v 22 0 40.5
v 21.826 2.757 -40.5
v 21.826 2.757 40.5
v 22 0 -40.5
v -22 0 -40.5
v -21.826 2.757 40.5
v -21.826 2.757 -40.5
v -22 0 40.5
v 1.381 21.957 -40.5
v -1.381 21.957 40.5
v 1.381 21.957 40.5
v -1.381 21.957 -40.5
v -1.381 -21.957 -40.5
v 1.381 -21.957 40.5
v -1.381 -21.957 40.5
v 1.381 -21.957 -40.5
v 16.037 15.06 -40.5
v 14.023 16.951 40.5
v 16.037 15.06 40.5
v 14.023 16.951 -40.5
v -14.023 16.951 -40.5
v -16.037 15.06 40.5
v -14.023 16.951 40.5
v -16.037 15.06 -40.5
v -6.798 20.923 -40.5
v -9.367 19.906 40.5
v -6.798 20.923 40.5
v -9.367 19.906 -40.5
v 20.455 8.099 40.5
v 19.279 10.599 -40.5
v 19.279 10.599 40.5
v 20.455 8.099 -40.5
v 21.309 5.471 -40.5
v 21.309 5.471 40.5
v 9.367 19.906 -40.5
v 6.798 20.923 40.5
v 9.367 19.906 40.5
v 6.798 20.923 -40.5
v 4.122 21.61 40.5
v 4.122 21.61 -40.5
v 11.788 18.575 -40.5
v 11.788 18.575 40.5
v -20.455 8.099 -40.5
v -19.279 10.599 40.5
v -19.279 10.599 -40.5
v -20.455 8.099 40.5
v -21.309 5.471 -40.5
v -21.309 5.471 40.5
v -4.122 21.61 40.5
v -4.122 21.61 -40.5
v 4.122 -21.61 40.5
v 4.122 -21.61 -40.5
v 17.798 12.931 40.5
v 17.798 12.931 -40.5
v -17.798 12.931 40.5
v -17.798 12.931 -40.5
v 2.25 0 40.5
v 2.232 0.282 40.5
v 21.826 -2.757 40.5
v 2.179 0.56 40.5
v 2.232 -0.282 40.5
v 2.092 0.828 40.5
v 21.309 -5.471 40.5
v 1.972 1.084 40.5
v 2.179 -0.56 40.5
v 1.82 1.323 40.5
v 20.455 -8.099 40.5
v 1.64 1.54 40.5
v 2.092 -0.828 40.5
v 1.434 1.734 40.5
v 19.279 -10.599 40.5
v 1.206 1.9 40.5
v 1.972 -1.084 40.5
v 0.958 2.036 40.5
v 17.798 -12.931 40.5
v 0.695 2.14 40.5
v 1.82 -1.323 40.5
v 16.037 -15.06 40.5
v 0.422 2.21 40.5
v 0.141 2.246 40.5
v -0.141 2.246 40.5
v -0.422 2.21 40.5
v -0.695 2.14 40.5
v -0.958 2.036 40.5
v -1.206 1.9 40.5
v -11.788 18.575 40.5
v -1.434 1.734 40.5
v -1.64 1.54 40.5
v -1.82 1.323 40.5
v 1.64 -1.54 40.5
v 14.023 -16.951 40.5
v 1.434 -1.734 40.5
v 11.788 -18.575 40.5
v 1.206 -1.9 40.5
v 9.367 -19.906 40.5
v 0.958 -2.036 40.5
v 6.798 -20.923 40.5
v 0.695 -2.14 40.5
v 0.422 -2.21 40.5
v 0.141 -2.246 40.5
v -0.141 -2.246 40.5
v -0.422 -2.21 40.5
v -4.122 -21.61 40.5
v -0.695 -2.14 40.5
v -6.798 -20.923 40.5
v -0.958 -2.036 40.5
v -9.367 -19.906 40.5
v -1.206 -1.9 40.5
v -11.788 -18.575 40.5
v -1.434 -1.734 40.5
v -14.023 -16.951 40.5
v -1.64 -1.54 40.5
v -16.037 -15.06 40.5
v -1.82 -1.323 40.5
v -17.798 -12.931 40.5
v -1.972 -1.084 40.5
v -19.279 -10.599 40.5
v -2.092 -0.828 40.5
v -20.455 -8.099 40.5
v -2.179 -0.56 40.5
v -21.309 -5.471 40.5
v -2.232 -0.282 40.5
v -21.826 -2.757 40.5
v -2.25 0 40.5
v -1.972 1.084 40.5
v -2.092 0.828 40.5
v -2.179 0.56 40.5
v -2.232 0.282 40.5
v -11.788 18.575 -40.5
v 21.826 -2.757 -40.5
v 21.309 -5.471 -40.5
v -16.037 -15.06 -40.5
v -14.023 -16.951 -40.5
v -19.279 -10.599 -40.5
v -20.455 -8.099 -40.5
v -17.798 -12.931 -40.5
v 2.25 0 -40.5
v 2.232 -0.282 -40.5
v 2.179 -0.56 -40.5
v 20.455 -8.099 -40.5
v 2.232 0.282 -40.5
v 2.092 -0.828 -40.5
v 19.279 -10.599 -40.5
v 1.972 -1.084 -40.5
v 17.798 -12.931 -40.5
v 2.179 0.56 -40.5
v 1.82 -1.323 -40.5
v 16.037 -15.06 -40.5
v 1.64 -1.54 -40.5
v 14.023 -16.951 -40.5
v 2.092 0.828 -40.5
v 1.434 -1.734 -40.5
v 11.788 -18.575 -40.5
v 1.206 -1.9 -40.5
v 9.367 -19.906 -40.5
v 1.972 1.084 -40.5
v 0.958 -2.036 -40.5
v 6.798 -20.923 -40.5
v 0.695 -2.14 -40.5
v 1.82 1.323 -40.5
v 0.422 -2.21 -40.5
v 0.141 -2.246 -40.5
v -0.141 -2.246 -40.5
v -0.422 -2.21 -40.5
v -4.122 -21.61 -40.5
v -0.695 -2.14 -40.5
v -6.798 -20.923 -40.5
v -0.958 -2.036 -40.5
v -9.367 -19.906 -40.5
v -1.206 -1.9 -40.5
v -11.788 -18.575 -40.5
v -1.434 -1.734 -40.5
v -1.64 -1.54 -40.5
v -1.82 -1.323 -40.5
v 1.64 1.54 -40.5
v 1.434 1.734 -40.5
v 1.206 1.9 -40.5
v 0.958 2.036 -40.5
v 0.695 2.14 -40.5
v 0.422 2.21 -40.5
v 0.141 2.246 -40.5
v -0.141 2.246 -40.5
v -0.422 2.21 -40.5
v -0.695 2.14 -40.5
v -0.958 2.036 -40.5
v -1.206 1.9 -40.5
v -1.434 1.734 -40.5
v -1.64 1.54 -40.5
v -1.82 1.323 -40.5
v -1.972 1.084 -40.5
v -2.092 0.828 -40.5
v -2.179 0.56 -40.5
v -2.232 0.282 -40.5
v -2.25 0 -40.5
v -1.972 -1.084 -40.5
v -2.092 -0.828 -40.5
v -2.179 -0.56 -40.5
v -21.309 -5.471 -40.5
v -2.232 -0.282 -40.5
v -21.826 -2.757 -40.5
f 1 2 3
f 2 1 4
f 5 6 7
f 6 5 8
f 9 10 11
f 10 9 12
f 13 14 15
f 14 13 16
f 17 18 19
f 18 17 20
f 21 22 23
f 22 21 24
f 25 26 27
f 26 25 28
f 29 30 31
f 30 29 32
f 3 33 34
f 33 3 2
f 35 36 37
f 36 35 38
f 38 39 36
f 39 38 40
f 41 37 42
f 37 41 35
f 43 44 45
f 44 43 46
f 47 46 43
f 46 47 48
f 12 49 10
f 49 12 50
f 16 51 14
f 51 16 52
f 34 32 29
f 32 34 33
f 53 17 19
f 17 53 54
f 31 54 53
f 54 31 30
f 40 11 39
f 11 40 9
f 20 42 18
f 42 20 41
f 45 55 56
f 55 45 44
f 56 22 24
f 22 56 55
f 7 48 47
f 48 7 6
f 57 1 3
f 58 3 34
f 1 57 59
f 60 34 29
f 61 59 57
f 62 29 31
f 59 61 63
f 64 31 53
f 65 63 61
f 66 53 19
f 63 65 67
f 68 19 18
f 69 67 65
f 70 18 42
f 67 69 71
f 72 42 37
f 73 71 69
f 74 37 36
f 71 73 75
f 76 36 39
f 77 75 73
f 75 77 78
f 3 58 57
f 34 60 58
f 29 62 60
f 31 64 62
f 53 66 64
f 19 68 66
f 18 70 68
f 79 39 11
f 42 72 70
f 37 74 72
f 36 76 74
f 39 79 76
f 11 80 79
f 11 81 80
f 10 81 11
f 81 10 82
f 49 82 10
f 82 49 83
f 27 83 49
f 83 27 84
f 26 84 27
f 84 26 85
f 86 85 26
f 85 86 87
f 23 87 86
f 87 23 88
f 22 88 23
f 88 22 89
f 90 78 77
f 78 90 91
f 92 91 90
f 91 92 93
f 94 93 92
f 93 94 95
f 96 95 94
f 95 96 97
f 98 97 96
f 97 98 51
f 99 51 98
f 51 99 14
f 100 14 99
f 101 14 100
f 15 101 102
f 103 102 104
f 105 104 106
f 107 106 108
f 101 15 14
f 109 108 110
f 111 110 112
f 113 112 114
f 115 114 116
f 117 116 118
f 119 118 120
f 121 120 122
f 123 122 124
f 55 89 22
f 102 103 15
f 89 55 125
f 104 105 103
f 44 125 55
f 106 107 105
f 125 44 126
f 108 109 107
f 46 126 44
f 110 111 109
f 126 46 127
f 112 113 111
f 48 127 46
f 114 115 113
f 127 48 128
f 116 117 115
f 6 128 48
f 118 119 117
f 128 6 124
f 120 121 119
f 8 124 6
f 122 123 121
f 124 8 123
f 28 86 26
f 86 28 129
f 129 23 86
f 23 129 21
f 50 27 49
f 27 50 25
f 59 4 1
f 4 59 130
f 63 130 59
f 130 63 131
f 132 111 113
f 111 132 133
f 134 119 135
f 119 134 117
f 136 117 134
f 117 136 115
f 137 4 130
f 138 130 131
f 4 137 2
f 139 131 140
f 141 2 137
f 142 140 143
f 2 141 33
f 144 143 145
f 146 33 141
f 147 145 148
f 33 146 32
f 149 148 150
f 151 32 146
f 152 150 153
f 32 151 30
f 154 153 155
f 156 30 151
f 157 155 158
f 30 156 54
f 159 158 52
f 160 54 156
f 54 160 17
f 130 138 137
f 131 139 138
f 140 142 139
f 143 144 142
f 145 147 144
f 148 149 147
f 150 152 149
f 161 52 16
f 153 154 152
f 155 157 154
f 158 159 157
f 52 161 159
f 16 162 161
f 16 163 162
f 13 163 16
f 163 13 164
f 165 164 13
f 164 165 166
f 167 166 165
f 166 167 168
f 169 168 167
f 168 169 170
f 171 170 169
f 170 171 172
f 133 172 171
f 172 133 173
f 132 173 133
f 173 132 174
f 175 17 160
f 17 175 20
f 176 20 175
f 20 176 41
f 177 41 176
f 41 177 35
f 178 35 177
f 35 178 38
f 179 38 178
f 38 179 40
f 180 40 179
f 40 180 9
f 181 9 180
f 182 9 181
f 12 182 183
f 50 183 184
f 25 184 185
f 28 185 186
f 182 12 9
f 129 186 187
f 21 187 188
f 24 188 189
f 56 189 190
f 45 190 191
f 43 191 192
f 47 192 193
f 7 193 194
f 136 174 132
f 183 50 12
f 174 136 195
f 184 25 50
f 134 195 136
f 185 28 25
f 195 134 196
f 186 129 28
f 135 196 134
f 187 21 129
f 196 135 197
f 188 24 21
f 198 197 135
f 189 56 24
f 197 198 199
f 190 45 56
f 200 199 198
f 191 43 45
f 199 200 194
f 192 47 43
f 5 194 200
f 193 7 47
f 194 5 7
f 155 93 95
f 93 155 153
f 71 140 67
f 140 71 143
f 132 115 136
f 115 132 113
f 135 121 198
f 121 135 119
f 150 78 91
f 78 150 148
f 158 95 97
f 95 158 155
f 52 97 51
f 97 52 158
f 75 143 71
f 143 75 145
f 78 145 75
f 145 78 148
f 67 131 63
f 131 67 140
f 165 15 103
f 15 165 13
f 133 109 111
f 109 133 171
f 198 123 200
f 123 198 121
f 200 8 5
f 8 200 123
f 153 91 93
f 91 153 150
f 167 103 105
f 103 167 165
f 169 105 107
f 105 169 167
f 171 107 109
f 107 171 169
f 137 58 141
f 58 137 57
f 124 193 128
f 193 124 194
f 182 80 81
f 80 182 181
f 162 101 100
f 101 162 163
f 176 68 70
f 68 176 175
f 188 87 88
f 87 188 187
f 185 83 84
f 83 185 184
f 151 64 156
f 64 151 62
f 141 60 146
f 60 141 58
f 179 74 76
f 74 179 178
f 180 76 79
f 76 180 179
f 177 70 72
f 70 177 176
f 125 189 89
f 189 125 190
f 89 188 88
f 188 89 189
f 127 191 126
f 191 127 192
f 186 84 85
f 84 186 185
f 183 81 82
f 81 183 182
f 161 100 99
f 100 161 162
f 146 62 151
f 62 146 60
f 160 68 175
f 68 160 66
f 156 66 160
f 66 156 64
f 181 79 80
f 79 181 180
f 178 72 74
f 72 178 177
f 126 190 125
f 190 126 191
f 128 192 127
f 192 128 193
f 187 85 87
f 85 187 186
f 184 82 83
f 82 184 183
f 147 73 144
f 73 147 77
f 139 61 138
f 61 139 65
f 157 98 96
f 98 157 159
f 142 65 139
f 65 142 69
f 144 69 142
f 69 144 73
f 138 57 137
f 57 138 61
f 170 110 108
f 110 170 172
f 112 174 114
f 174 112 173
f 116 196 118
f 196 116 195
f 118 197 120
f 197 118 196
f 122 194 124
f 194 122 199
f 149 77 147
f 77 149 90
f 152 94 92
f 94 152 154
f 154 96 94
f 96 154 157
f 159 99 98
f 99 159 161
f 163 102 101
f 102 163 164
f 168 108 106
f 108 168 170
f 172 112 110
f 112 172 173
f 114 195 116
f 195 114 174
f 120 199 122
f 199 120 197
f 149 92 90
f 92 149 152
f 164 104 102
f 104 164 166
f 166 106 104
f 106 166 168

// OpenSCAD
$fn = 50;


difference() {
	union() {
		translate(v = [0, 0, -40.5000000000]) {
			cylinder(h = 81, r = 22.0000000000);
		}
	}
	union() {
		translate(v = [0, 0, -100.0000000000]) {
			cylinder(h = 200, r = 2.2500000000);
		}
	}
}
